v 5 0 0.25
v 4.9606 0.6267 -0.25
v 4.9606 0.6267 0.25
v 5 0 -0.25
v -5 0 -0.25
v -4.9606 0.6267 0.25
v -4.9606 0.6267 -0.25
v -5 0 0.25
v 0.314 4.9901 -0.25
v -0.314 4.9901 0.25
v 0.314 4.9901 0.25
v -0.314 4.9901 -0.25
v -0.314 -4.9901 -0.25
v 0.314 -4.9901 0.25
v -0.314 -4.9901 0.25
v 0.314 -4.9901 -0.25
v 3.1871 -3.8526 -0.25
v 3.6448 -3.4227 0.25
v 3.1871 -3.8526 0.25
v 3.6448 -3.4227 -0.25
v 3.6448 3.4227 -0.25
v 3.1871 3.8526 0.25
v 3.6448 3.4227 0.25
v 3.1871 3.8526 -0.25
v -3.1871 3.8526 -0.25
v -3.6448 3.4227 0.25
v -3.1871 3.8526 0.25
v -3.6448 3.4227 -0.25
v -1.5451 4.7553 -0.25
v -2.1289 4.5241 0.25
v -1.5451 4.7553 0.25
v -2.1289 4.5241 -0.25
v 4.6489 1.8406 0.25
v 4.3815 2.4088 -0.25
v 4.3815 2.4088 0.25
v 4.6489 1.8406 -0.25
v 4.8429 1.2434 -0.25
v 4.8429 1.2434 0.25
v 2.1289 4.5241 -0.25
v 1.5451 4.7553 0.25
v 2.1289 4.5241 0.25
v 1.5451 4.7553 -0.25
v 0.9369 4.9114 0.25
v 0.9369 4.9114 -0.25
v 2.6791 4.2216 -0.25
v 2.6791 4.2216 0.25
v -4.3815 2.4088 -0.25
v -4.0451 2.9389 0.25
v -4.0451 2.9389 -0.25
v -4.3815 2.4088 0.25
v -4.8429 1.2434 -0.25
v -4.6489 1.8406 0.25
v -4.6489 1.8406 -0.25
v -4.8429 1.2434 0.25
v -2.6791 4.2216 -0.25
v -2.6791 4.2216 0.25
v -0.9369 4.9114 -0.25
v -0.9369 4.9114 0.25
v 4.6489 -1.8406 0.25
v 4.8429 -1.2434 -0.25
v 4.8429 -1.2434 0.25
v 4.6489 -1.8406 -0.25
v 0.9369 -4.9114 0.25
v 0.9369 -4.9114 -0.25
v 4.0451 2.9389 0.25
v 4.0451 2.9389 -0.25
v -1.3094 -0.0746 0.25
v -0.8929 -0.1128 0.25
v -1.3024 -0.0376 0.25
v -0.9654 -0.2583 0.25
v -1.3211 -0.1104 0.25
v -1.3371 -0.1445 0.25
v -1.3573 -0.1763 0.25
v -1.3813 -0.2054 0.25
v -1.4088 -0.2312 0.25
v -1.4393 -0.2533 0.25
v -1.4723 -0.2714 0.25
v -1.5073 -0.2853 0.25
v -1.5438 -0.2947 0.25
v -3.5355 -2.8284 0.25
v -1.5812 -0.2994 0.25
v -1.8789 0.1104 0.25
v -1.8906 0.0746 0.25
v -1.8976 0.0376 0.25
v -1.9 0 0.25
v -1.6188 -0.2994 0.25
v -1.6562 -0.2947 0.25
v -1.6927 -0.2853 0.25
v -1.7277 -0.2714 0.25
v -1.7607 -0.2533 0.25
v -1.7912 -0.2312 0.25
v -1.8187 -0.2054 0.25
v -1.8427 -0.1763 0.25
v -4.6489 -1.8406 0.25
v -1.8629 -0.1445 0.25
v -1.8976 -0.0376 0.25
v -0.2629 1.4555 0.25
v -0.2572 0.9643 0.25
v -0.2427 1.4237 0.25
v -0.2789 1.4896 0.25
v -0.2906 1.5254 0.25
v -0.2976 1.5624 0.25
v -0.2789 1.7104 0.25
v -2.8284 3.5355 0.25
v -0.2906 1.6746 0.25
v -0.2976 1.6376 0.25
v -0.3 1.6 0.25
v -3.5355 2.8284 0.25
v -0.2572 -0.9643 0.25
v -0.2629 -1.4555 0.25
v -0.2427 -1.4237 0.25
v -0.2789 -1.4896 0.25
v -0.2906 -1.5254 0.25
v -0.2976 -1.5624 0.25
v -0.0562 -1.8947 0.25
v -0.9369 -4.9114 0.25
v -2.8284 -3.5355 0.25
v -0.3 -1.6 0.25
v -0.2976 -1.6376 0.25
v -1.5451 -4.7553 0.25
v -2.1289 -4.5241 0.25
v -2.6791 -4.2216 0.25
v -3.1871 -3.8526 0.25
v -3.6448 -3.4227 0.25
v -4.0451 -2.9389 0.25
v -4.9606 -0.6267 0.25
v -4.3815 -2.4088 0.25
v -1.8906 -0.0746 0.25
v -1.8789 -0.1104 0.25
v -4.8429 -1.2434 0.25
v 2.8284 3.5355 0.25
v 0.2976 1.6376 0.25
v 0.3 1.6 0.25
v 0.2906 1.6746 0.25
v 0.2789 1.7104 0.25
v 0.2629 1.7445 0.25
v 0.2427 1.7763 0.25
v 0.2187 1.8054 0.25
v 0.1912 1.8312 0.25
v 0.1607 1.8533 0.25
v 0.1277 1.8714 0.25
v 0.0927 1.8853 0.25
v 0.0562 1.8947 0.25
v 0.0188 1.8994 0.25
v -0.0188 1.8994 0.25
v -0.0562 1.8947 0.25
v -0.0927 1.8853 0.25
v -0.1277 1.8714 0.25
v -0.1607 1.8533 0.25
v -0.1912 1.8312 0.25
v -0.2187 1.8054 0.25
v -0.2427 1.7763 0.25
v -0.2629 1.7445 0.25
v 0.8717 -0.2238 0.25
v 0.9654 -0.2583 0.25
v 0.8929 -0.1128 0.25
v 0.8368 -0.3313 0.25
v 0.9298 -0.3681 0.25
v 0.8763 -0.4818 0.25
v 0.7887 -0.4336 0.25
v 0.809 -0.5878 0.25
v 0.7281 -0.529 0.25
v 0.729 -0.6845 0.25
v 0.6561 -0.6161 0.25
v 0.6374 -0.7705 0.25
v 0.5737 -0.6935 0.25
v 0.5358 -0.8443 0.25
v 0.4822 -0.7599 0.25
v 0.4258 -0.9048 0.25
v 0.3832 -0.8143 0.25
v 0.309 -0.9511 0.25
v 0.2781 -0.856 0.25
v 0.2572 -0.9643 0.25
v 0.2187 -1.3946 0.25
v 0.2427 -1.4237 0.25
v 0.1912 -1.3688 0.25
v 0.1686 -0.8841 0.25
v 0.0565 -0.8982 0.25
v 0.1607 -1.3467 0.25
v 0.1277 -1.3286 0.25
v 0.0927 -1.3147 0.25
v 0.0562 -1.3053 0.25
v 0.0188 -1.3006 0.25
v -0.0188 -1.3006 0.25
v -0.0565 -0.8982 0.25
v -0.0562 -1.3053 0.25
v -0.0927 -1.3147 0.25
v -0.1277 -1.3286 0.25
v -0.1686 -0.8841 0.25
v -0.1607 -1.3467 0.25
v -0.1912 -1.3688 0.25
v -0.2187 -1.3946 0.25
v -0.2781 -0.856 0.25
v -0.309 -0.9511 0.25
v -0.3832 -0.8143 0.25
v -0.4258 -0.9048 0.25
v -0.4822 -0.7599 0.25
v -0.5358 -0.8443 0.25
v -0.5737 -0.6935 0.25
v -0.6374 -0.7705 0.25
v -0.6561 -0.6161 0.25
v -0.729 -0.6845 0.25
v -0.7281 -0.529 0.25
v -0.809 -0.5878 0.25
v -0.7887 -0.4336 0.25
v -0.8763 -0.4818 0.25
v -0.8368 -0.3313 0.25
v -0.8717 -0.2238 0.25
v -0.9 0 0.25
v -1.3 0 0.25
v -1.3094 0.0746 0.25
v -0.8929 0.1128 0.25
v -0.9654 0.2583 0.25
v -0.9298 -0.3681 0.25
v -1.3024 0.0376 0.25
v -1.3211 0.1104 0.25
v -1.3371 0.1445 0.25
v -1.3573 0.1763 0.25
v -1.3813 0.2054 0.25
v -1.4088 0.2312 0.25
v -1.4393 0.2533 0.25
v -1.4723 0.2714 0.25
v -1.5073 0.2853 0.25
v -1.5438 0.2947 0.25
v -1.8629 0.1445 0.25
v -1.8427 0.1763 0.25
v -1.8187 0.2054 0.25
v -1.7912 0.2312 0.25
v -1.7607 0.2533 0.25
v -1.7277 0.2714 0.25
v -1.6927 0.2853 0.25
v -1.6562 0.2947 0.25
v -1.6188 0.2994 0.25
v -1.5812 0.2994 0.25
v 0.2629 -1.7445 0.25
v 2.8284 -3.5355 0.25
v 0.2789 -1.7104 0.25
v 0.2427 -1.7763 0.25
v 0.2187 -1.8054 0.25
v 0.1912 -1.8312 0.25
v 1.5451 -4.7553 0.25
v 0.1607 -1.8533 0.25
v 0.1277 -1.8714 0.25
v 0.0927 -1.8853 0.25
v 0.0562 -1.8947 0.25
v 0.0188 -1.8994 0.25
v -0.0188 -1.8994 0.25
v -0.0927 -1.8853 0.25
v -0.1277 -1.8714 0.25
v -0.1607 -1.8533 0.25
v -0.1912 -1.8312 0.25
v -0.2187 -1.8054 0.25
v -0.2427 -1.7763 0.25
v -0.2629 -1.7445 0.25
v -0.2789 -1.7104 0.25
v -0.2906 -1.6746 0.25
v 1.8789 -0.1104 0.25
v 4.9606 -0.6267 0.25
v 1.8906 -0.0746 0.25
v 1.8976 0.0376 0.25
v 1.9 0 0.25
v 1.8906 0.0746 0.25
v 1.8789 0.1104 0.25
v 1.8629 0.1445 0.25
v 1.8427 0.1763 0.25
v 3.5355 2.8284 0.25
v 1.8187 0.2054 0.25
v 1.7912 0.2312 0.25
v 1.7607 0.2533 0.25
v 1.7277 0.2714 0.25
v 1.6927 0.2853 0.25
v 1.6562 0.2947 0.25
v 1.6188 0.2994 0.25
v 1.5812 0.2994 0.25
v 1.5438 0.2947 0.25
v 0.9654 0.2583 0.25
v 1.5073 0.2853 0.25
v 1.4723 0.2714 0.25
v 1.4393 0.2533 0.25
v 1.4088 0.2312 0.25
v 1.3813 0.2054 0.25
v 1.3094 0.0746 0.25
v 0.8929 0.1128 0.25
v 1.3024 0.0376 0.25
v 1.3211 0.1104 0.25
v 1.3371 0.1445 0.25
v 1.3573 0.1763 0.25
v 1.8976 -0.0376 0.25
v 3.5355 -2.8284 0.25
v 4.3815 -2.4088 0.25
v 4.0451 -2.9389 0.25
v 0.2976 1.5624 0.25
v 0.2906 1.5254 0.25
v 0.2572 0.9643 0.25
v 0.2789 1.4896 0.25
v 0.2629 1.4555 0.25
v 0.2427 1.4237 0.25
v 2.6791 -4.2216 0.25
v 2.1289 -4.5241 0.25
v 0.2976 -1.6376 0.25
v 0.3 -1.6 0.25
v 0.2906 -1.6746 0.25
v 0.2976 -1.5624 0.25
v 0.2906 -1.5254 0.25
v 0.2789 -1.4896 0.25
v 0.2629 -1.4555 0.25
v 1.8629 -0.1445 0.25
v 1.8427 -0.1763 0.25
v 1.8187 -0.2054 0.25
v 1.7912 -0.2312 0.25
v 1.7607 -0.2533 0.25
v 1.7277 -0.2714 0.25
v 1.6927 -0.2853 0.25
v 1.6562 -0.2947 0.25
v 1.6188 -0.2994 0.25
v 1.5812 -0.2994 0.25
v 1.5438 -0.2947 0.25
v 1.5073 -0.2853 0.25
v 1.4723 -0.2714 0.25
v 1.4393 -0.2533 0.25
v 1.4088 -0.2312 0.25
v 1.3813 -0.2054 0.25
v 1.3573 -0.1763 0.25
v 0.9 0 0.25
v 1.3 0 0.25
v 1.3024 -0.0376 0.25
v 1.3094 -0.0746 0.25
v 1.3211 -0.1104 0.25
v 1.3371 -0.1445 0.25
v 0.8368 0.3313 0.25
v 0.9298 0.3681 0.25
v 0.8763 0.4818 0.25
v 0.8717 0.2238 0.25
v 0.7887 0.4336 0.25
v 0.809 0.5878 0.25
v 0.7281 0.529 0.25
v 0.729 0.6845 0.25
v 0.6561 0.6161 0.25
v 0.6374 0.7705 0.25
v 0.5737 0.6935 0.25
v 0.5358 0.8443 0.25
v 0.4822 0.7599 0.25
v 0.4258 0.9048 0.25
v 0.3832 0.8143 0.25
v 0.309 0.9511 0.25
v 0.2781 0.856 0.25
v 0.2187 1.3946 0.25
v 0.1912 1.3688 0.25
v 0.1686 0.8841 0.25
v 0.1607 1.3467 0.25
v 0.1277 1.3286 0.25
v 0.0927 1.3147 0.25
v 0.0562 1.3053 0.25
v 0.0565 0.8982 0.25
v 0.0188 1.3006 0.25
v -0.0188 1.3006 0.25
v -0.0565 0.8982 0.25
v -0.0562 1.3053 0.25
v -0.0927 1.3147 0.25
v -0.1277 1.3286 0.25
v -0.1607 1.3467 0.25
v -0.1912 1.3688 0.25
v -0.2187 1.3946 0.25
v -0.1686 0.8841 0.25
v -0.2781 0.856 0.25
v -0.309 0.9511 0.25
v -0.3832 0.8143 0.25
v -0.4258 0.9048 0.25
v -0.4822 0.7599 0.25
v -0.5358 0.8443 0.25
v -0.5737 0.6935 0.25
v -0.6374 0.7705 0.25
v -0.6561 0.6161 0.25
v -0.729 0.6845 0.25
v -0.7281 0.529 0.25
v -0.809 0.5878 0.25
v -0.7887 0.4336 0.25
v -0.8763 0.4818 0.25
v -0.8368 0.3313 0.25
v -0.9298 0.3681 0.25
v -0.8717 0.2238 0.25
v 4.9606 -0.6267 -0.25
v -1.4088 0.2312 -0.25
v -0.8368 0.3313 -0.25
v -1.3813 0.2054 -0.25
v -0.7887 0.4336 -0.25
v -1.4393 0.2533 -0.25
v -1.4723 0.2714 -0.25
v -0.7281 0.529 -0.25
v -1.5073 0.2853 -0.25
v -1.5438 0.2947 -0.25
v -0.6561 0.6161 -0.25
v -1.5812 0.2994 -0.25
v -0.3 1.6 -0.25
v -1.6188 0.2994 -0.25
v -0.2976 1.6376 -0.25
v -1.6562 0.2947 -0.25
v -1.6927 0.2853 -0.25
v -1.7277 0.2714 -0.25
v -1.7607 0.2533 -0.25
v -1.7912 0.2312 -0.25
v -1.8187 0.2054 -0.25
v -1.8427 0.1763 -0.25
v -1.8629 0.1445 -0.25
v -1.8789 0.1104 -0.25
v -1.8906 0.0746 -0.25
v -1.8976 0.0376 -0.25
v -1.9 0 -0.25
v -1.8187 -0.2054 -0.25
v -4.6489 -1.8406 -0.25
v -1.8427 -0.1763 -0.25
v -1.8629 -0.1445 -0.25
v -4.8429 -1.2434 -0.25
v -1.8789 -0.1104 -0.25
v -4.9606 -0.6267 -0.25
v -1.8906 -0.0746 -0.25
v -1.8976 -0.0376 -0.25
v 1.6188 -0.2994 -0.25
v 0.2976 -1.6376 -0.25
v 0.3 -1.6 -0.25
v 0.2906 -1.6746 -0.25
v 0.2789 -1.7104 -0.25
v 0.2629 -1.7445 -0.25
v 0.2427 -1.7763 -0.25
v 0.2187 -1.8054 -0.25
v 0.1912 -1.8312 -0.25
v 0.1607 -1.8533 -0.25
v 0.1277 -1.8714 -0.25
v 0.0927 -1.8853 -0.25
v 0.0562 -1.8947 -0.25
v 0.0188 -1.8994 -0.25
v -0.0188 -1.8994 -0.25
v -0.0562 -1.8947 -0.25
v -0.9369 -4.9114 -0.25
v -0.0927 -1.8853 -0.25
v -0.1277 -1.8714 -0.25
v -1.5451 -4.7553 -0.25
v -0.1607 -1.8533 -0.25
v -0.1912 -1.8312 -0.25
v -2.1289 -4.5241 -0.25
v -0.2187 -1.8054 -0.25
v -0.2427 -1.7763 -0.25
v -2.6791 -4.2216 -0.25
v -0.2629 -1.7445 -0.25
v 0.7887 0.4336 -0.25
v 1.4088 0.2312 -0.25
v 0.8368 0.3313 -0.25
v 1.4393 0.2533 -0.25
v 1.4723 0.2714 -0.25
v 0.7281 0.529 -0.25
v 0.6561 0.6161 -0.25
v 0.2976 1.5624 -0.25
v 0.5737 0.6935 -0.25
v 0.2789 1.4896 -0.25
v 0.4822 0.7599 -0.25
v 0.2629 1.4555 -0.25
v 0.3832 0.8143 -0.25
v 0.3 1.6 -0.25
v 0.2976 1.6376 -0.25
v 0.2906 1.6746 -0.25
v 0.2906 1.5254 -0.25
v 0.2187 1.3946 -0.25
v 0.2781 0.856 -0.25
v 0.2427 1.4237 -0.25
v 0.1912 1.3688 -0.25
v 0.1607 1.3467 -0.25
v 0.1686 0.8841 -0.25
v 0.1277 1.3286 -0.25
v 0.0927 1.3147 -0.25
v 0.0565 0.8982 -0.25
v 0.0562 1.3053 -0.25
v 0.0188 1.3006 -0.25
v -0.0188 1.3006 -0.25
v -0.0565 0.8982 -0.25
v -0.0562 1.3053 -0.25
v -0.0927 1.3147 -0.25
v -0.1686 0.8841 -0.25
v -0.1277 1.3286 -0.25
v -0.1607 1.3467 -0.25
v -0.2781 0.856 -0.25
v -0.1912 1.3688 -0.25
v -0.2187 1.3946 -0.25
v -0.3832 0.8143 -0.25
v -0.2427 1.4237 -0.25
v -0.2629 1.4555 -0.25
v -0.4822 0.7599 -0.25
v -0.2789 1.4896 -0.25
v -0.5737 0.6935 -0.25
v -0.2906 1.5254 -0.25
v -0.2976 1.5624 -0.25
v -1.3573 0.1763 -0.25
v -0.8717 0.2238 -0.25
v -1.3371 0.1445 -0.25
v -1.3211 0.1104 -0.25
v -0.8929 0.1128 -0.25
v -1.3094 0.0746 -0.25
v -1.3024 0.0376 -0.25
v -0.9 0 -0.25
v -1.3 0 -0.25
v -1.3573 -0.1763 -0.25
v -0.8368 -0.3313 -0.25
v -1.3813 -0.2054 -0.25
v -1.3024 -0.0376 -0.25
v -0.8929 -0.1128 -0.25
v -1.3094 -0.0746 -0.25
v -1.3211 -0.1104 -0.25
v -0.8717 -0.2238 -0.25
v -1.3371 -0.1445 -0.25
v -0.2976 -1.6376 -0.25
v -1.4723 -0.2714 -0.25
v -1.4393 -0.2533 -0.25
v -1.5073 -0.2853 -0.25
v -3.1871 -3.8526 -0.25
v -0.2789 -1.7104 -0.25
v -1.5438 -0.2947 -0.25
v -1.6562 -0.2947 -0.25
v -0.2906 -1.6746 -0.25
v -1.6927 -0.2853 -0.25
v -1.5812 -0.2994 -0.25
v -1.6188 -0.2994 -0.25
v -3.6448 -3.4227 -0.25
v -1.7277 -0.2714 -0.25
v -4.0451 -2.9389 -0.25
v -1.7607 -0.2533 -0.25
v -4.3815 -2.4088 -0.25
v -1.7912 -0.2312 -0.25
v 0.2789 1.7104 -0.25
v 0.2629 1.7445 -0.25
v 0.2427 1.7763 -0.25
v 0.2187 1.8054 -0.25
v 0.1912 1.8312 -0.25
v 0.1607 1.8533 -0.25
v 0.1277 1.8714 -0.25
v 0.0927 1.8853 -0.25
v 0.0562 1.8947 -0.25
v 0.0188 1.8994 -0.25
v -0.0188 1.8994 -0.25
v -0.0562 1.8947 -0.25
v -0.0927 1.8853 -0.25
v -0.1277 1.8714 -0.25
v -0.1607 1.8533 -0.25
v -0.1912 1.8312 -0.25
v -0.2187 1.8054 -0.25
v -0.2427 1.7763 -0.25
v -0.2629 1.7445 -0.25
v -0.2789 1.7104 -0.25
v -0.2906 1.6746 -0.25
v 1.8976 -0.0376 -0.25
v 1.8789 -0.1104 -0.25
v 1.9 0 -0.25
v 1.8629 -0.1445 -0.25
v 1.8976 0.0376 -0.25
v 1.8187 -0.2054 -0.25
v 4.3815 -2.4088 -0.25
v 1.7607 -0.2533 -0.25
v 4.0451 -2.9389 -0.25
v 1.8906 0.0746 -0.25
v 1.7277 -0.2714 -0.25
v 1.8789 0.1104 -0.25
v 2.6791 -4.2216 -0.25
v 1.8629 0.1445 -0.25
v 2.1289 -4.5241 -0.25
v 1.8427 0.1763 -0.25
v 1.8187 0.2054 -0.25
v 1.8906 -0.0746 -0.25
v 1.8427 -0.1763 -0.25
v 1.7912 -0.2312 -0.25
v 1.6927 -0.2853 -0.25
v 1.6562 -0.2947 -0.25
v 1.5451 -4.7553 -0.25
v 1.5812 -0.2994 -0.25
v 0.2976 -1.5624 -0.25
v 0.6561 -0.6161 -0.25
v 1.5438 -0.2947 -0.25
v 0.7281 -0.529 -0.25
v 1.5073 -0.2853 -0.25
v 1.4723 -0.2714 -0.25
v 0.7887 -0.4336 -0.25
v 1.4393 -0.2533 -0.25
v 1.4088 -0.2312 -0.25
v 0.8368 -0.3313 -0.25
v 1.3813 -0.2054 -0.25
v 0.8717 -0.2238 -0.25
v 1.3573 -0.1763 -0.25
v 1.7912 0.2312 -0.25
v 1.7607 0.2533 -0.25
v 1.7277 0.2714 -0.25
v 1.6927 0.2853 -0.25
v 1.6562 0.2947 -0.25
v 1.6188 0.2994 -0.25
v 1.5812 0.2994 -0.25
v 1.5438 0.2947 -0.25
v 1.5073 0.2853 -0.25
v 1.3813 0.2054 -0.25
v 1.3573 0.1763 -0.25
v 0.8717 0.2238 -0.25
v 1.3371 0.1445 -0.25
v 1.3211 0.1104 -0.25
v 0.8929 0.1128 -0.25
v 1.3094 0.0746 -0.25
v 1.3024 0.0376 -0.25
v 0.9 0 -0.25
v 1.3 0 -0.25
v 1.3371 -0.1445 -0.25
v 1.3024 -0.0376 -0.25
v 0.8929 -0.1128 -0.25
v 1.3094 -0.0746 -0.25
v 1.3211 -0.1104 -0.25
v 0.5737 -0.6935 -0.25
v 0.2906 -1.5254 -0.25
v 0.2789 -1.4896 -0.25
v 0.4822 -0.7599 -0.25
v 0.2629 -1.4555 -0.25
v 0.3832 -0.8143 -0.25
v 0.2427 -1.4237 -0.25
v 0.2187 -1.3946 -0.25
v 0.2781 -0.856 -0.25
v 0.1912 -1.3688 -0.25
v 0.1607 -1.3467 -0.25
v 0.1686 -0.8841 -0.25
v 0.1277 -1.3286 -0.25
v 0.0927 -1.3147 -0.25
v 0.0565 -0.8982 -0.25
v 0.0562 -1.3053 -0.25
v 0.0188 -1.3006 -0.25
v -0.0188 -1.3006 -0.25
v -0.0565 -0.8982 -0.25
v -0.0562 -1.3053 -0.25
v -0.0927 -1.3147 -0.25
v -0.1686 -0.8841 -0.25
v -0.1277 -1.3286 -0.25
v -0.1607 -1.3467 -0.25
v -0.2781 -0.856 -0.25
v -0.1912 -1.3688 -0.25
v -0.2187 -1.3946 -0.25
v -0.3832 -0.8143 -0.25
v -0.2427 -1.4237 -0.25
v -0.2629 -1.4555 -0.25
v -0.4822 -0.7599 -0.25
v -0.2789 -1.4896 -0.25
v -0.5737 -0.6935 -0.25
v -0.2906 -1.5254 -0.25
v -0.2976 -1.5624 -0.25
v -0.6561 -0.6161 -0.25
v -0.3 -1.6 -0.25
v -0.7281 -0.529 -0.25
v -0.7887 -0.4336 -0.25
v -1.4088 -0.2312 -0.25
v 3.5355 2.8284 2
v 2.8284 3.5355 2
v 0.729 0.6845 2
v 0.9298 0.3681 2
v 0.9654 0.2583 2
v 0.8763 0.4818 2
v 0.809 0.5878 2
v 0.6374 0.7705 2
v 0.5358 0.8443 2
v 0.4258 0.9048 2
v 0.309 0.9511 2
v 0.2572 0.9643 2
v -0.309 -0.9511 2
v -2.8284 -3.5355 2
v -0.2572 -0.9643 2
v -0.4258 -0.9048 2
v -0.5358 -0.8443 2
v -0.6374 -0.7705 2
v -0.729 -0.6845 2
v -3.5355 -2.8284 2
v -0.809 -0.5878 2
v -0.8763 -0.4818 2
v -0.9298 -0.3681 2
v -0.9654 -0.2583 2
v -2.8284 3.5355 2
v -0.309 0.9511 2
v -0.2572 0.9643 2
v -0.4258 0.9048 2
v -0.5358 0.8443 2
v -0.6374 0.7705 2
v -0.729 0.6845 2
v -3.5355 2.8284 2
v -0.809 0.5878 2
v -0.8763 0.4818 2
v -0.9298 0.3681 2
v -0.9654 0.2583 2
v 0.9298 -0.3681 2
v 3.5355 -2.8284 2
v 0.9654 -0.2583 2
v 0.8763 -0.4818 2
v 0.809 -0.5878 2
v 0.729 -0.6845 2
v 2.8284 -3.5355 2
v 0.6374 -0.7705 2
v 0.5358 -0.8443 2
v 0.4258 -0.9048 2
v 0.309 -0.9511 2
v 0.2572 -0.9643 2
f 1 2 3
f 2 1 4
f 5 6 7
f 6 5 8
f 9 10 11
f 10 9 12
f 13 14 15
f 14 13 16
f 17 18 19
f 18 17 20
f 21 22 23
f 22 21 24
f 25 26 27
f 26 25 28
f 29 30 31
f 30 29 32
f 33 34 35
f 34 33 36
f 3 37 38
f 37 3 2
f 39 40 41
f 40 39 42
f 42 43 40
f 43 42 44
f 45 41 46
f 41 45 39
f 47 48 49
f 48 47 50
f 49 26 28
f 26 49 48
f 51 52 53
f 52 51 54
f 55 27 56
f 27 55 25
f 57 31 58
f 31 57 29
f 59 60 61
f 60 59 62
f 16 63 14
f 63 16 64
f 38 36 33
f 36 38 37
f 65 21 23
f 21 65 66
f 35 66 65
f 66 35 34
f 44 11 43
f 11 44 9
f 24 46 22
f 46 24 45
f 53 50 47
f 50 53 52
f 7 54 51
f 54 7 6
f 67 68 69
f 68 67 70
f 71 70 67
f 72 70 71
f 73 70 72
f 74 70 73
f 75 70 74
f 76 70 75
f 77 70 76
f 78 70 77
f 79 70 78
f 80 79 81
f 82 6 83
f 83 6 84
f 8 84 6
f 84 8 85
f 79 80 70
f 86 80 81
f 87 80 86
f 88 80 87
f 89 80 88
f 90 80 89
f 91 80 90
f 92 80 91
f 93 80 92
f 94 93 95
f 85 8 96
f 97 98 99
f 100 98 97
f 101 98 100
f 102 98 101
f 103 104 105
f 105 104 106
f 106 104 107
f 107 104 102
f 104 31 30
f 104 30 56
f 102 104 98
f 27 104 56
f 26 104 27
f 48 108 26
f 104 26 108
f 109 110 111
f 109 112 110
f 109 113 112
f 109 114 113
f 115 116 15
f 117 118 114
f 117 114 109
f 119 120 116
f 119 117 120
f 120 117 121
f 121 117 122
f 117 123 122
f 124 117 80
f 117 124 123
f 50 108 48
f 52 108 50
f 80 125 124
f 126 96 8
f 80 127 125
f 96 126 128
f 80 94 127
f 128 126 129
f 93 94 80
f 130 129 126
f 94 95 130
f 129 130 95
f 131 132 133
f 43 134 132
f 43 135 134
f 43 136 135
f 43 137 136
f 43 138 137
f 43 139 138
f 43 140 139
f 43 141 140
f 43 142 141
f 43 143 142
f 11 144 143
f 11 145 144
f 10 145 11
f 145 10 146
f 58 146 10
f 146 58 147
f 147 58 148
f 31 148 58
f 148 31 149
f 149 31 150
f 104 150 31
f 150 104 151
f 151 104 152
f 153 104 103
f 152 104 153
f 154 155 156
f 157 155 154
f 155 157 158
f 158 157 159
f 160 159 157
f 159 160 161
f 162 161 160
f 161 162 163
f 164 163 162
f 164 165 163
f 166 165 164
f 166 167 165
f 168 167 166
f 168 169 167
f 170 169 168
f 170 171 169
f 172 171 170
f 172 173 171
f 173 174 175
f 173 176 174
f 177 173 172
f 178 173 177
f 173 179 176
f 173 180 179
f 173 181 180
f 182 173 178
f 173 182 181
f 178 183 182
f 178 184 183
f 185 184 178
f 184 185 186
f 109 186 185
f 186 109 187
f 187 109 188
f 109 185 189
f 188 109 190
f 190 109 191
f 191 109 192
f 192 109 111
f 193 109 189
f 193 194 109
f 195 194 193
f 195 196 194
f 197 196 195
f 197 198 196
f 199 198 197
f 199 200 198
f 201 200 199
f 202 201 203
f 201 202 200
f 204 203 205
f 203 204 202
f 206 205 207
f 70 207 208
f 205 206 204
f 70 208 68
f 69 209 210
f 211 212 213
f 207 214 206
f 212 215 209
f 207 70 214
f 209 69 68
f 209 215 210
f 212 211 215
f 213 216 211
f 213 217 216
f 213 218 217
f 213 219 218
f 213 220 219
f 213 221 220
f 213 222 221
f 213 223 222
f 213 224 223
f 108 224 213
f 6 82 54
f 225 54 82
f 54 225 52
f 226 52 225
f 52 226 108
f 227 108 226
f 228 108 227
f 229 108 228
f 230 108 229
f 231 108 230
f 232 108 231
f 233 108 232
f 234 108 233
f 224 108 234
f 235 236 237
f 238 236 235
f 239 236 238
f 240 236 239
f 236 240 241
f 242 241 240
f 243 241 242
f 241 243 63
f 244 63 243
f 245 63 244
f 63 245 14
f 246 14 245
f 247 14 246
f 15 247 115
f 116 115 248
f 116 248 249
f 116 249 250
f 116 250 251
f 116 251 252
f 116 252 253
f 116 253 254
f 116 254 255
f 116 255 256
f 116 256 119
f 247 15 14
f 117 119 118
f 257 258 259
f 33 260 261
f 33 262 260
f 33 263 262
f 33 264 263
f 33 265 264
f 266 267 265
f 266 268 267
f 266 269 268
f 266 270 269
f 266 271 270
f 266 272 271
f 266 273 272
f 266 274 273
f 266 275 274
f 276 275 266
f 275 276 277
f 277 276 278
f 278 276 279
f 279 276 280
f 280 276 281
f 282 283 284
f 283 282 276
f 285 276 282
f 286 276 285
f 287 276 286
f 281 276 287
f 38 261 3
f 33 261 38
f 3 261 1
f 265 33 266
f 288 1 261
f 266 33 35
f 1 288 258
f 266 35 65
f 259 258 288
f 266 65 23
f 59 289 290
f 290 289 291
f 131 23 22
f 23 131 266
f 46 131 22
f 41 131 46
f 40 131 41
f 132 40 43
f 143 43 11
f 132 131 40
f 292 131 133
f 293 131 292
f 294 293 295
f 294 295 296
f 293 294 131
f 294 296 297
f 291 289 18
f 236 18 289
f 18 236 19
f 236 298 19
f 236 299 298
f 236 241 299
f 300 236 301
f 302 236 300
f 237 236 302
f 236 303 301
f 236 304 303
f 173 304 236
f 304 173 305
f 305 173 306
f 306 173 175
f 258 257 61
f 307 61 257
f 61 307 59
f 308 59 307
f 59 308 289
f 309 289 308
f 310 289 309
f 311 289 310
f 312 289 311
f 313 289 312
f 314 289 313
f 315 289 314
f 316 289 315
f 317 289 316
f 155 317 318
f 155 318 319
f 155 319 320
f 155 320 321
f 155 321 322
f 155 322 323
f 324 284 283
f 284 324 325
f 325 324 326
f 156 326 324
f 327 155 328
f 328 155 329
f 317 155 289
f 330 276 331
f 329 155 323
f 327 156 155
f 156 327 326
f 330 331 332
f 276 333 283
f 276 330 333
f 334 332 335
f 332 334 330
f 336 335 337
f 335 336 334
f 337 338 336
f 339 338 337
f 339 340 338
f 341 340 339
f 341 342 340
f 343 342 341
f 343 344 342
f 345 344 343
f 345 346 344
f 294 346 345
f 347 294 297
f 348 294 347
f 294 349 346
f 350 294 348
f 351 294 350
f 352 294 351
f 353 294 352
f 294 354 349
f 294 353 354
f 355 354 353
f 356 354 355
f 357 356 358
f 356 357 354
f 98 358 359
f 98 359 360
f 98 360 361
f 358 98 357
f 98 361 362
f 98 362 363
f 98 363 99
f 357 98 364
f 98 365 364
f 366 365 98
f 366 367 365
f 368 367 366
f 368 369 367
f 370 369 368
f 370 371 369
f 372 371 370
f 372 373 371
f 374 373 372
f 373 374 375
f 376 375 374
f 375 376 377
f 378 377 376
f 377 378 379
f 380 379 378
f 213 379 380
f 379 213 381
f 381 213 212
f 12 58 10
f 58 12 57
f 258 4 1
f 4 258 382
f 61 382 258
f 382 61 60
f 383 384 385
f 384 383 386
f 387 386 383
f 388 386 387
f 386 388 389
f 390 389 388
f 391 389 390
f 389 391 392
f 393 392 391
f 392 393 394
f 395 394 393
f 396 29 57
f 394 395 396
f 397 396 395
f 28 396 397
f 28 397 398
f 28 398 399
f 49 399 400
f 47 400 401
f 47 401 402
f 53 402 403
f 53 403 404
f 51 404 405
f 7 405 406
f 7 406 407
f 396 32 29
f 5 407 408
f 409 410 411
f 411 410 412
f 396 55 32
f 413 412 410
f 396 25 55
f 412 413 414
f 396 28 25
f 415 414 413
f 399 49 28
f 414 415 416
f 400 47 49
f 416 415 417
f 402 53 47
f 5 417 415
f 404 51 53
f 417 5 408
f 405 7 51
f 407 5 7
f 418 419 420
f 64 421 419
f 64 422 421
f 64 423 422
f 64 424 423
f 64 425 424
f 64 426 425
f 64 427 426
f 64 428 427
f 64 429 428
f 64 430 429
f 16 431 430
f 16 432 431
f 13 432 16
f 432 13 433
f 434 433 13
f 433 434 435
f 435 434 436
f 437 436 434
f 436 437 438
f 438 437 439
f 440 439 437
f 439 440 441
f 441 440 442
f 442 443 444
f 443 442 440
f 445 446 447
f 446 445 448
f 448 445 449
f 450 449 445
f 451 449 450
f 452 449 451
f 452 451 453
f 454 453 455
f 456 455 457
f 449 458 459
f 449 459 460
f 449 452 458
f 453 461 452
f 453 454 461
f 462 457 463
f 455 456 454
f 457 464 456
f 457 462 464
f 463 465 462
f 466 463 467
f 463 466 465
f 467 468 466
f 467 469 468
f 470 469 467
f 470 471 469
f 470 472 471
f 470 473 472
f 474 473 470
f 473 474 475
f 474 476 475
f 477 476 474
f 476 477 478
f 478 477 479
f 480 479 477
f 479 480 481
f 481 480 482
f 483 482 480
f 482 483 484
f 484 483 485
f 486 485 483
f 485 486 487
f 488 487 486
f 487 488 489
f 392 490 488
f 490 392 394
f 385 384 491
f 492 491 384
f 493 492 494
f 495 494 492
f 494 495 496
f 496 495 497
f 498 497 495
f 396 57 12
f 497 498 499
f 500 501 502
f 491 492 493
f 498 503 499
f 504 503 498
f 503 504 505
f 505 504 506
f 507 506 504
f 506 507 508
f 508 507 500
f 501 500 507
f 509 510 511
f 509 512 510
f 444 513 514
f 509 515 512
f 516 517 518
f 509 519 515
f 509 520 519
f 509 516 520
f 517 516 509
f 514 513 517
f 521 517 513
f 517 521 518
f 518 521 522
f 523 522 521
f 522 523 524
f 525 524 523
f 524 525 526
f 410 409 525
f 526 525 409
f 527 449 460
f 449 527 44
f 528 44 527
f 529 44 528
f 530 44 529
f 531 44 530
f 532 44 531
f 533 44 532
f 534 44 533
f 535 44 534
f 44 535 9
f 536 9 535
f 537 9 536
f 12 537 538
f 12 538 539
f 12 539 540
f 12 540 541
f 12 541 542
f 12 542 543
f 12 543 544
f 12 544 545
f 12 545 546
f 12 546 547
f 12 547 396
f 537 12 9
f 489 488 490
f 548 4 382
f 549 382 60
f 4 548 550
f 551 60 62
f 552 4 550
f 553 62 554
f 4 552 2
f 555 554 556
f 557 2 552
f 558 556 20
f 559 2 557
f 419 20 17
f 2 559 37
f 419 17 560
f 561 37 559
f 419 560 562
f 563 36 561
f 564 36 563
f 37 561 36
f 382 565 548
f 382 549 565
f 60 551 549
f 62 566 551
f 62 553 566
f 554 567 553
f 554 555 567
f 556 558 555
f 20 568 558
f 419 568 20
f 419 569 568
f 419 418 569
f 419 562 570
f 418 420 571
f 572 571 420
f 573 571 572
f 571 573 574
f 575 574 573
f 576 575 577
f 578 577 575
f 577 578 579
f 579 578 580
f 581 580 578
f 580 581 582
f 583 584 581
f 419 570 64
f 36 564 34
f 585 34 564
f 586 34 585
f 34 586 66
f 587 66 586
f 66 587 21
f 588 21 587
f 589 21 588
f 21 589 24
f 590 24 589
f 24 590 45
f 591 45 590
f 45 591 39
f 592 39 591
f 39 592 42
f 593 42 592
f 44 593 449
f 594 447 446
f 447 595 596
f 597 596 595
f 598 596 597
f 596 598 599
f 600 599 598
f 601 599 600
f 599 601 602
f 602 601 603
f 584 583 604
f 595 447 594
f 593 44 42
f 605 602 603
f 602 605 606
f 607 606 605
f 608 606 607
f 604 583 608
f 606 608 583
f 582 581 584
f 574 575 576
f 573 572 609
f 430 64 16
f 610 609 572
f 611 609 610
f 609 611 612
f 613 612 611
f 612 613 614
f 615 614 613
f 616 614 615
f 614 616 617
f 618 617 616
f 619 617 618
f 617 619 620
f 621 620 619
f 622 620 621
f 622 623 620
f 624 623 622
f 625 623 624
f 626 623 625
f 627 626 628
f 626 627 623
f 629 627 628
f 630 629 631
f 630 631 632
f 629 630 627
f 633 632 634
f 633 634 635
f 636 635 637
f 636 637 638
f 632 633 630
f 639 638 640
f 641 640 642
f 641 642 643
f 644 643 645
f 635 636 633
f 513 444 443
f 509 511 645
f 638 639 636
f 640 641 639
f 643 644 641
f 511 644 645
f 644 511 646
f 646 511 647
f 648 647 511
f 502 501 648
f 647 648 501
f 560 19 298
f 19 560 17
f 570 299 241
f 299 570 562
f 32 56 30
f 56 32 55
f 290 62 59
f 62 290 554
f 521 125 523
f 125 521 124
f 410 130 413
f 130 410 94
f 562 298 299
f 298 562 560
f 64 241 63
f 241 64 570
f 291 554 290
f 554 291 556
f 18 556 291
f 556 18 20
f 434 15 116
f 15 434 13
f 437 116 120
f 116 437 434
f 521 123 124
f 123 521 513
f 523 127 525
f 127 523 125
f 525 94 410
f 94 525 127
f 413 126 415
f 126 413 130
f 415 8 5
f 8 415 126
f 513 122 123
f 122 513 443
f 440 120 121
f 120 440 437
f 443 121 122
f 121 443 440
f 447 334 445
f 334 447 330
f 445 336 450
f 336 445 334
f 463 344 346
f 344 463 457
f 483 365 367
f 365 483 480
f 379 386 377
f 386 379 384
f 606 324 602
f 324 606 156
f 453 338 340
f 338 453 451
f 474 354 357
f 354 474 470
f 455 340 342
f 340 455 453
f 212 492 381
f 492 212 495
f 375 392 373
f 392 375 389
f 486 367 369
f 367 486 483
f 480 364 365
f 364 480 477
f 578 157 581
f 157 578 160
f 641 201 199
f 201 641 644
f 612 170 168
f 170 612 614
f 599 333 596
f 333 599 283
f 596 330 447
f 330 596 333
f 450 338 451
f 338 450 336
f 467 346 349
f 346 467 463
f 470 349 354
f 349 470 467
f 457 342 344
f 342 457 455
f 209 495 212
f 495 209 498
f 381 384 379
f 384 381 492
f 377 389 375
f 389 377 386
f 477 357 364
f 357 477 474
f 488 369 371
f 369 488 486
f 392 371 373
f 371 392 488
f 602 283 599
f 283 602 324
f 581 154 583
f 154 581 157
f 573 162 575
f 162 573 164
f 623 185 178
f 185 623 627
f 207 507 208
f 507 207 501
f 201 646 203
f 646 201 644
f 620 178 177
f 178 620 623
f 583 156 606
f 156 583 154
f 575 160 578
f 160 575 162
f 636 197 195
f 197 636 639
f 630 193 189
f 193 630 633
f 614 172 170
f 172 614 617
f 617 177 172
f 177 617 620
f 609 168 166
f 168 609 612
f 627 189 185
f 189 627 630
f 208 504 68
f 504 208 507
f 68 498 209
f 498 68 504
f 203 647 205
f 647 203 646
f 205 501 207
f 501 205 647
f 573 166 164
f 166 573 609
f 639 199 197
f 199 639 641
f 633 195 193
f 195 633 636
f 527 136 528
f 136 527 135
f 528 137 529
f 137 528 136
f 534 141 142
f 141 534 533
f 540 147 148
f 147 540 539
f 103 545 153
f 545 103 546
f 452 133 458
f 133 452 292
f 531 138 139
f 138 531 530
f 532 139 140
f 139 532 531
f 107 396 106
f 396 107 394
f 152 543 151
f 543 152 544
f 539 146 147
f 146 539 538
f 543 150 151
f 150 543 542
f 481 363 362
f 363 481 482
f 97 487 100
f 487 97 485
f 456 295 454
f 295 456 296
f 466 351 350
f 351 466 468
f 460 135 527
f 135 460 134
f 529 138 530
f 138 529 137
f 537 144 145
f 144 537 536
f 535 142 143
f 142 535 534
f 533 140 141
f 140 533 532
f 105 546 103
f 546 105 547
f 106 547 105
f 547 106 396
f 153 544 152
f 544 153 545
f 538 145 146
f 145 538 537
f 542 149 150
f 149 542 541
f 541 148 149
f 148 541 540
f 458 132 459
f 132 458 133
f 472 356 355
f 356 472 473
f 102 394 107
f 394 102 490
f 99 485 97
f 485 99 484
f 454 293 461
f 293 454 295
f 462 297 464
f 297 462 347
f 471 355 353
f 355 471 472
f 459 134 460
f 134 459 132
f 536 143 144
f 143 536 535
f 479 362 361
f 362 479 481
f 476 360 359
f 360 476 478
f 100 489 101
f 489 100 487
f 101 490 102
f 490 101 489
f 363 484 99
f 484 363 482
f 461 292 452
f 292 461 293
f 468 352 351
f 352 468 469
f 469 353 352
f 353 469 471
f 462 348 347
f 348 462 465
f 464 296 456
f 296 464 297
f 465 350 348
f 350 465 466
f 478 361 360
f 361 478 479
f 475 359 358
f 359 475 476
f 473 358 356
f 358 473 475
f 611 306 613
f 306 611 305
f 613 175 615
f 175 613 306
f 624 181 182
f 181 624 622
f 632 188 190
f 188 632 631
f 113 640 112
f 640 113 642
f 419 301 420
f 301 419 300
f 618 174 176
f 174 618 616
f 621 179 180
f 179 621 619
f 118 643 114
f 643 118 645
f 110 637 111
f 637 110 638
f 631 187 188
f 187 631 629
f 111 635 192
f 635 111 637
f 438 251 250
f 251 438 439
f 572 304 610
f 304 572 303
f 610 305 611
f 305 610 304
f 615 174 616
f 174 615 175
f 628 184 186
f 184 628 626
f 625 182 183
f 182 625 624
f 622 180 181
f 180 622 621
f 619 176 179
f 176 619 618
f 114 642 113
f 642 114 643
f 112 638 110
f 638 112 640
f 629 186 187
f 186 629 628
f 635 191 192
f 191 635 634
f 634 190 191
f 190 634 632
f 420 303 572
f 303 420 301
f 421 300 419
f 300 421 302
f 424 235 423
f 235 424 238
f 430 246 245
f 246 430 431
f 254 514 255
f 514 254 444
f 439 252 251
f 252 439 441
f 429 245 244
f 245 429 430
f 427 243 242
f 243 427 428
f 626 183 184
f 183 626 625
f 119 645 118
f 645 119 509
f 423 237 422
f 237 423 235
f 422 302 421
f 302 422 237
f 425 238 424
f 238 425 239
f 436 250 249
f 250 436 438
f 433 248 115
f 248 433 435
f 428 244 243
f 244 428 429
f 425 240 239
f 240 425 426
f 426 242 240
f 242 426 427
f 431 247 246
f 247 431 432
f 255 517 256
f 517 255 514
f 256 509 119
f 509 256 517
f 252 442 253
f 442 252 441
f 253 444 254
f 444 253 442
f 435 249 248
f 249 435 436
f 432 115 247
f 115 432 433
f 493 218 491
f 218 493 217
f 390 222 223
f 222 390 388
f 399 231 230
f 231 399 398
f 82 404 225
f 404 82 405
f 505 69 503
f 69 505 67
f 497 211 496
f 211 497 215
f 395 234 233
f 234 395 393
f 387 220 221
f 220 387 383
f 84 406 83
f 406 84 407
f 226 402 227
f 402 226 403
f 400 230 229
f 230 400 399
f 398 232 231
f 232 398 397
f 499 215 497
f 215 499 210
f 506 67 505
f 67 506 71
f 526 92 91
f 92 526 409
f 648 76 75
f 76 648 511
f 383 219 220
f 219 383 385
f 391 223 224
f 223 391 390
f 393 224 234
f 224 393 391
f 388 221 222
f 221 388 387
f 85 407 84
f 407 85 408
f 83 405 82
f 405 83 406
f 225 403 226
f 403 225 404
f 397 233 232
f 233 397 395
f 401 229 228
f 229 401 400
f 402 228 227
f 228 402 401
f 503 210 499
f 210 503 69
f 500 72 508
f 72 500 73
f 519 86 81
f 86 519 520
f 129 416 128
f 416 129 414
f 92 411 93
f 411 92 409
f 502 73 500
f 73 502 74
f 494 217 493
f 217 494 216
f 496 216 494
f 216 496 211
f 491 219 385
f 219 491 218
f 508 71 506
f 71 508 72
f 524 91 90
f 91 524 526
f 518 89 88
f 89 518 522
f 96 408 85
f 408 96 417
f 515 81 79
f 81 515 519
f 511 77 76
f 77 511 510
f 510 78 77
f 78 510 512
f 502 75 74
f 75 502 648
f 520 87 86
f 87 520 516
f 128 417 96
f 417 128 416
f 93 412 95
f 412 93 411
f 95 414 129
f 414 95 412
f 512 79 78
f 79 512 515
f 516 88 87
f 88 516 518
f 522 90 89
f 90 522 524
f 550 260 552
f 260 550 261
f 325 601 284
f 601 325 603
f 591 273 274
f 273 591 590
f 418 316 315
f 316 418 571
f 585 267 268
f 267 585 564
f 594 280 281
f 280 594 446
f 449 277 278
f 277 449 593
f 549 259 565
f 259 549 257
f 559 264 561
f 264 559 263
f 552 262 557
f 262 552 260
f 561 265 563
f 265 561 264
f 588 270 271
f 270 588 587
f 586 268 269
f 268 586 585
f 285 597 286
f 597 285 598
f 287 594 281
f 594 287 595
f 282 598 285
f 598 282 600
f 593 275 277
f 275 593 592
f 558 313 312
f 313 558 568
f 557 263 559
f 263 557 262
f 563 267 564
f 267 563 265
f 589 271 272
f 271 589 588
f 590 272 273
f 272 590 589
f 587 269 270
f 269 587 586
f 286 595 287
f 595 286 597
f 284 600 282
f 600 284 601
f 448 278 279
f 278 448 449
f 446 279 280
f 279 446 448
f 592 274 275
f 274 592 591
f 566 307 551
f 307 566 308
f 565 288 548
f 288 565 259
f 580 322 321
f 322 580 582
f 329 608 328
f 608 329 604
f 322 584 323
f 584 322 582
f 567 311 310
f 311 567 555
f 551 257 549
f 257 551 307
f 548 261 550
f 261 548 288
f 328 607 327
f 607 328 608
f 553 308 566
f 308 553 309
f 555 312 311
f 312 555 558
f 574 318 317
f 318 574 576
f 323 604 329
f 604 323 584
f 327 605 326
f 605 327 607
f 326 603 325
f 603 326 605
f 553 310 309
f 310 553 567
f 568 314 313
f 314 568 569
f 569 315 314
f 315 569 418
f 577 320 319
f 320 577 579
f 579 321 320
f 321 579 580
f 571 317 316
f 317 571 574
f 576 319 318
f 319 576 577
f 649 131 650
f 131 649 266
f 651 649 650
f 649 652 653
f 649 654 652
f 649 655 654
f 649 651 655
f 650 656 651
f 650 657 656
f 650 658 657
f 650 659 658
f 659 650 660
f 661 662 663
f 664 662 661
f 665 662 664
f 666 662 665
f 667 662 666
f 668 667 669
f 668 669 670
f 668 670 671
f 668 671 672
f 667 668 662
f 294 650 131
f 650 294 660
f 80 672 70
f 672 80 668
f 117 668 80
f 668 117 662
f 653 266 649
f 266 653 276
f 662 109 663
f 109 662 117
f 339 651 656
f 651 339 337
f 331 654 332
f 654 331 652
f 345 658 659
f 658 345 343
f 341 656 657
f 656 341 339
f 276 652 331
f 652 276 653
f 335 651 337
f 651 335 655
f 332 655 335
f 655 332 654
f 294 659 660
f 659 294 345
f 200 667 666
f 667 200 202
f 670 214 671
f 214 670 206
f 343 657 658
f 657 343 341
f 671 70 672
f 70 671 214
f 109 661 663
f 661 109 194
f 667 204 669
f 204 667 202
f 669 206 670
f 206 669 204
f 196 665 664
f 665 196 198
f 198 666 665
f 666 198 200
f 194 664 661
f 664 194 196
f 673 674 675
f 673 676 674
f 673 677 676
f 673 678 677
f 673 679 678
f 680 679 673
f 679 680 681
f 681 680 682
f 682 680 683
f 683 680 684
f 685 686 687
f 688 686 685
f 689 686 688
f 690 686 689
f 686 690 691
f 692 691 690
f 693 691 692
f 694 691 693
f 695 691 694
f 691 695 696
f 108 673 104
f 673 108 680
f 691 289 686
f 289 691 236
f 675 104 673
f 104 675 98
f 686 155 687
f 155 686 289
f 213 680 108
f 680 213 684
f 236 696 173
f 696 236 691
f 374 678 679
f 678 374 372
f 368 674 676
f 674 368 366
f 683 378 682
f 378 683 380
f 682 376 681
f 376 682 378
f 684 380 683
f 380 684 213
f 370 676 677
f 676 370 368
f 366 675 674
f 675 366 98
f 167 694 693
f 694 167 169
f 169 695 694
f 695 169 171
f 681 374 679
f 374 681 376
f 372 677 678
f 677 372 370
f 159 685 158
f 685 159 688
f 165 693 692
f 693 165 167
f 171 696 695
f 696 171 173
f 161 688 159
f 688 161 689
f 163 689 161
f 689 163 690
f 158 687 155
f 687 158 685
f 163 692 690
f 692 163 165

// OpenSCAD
 $fn=50;
difference(){
cylinder(h=.5,r=5,center=true);
cylinder(h=1.2,r=.9,center=true);
    translate([0,1.6,0])
cylinder(h=1.2,r=.3,center=true);
      translate([0,-1.6,0])
cylinder(h=1.2,r=.3,center=true);
          translate([-1.6,0,0])
cylinder(h=1.2,r=.3,center=true);
    translate([1.6,0,0])
cylinder(h=1.2,r=.3,center=true);
}

difference(){
rotate([0,0,45])
translate([0,0,1])
cube([9,1,2], center=true);
cylinder(h=5,r=1,center=true);
}

difference(){
rotate([0,0,135])
translate([0,0,1])
cube([9,1,2], center=true);
cylinder(h=5,r=1,center=true);
}
